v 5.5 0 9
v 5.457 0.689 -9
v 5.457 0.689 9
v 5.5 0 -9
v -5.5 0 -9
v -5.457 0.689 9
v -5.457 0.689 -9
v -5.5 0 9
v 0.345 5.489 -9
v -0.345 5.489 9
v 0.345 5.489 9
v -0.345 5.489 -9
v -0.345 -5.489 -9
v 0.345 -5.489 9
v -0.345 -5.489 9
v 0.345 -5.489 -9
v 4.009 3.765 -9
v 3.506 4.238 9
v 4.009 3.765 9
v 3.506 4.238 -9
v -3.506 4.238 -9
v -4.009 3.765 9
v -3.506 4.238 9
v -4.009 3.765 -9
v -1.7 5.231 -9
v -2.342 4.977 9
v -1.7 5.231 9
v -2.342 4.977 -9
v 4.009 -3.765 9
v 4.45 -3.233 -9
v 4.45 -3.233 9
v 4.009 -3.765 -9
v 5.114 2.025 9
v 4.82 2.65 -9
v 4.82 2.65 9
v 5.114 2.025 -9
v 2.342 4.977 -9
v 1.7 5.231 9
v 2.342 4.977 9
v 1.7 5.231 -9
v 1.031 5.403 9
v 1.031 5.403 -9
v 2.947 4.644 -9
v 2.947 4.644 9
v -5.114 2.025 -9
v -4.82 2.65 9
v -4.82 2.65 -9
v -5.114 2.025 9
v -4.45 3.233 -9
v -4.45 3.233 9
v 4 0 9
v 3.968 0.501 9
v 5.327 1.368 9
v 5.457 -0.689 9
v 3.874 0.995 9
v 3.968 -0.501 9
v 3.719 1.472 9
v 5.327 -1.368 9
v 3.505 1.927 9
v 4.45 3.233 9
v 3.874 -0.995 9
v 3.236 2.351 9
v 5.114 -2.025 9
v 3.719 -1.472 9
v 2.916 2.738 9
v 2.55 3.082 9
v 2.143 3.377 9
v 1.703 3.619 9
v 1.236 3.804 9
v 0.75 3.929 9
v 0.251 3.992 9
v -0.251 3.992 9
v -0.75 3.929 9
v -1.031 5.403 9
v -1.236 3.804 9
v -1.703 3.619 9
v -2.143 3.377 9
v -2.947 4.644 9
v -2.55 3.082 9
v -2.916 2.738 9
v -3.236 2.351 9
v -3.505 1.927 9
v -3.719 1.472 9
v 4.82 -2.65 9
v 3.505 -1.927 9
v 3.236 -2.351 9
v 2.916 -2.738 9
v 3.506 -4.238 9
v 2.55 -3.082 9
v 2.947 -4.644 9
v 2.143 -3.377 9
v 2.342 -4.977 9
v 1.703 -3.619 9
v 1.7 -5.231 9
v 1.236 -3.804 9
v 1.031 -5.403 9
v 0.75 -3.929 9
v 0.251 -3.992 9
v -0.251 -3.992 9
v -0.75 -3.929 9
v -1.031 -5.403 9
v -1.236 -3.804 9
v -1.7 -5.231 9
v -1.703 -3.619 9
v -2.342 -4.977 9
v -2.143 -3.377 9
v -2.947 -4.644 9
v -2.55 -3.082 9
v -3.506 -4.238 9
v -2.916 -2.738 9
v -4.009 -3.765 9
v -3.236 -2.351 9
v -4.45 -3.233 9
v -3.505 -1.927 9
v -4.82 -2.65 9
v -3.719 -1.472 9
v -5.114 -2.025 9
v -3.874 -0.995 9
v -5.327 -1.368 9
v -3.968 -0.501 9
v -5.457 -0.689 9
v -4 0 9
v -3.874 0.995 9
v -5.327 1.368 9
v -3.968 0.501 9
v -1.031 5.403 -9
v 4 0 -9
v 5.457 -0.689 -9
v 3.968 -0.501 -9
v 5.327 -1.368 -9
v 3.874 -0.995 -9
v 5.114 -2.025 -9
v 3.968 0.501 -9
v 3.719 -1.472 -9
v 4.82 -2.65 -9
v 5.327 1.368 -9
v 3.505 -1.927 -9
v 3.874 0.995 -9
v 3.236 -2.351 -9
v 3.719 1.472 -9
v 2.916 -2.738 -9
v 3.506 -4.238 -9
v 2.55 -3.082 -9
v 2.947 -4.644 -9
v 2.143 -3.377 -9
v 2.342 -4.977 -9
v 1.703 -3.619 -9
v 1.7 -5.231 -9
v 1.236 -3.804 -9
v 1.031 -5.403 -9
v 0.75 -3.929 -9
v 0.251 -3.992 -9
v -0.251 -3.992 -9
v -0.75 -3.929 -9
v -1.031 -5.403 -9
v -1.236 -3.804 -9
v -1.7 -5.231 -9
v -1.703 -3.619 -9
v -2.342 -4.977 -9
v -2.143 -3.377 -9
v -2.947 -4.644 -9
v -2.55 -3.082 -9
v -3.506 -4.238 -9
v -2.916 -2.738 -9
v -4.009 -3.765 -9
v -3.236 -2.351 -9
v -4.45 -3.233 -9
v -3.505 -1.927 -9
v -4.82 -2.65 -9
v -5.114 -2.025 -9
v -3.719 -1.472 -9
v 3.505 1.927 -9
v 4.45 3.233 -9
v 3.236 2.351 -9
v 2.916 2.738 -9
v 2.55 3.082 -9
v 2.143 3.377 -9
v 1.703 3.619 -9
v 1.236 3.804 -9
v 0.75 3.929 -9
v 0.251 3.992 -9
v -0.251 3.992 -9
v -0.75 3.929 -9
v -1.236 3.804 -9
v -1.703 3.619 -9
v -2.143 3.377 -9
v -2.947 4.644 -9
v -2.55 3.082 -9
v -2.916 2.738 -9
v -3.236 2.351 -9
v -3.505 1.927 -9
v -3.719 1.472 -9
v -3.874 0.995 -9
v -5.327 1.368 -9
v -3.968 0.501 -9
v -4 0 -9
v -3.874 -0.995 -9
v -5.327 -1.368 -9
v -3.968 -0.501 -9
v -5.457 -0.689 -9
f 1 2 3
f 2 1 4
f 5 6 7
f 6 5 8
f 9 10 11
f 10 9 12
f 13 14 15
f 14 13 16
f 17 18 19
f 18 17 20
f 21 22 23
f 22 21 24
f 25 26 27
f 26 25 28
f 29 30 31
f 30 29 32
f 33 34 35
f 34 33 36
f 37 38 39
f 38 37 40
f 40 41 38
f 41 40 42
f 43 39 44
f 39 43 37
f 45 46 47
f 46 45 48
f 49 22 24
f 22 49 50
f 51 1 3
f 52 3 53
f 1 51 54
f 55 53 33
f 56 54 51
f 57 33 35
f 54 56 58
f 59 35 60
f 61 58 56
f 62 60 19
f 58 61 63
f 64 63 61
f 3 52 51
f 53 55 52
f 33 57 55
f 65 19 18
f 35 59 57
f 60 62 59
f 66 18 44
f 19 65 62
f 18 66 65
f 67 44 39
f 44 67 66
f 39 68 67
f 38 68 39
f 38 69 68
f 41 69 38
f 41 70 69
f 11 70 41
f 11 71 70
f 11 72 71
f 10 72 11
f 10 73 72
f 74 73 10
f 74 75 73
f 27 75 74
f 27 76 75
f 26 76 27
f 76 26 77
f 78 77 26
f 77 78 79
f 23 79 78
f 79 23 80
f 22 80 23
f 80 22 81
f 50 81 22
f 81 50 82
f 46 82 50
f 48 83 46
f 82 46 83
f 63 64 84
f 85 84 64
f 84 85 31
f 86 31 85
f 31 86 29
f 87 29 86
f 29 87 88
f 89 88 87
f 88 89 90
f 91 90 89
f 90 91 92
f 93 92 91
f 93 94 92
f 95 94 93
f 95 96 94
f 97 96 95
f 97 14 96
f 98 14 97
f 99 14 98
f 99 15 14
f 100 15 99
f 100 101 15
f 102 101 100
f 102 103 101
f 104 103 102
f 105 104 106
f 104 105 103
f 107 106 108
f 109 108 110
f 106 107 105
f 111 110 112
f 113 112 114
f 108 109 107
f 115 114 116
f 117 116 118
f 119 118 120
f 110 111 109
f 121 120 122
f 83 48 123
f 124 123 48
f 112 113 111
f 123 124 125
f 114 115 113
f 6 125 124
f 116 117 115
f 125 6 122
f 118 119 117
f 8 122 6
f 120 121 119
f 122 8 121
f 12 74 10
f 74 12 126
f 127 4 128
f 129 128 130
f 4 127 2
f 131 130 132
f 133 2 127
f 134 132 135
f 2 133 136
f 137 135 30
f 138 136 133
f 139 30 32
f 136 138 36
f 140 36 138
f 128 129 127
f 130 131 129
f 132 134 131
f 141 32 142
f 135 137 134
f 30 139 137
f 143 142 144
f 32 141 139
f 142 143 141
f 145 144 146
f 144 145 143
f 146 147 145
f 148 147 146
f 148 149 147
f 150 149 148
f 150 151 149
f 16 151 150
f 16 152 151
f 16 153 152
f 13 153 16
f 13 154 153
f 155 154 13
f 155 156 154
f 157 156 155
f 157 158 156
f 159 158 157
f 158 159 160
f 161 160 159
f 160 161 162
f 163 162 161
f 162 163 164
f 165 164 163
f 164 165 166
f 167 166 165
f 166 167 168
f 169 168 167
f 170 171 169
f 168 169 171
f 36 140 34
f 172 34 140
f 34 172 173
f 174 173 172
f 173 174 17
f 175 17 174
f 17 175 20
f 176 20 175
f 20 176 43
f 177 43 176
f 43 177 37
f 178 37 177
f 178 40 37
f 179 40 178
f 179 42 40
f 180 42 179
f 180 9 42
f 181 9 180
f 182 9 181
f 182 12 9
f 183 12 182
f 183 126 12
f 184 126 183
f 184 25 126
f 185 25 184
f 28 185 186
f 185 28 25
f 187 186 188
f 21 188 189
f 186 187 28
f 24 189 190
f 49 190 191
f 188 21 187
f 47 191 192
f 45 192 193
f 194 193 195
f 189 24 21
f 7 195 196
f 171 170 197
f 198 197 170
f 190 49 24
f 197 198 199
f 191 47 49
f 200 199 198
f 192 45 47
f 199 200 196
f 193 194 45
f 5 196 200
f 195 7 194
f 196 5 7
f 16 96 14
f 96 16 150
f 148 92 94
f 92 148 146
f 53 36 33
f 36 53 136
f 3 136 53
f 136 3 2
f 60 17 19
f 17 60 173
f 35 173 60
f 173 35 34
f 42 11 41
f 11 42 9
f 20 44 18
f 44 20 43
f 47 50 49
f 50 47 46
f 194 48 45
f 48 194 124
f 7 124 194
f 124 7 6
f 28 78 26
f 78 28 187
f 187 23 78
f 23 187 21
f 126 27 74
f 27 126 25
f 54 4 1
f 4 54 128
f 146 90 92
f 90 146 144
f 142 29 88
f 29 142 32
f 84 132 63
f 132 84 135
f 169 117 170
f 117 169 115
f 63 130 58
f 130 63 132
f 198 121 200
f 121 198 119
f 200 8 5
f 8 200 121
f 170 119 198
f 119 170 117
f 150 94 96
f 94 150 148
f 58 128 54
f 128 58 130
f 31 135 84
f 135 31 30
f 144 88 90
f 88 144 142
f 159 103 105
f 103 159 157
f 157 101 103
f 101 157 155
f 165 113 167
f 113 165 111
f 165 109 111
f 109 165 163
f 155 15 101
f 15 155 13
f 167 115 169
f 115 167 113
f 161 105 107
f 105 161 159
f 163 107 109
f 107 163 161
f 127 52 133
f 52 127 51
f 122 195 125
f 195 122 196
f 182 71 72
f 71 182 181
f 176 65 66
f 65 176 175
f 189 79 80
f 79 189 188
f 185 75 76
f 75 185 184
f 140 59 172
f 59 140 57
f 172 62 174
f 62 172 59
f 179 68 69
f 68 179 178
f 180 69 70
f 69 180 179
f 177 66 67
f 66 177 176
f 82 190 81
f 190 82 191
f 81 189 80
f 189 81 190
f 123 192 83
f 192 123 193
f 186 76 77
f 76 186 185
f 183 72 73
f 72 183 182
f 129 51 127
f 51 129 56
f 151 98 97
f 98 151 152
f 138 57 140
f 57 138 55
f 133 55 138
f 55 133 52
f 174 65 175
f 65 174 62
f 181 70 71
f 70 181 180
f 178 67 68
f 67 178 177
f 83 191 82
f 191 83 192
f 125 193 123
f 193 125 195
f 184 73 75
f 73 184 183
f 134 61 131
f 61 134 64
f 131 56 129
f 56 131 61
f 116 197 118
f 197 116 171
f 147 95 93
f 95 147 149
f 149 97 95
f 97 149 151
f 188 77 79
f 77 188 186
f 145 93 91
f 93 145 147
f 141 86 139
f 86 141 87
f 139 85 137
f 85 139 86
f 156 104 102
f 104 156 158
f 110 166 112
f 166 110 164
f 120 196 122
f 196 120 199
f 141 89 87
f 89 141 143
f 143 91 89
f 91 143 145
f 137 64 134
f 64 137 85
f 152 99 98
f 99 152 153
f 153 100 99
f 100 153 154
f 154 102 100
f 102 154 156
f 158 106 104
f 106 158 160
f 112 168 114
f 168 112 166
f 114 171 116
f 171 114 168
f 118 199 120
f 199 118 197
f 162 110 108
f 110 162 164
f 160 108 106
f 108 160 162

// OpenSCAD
$fn = 50;


difference() {
	union() {
		translate(v = [0, 0, -9.0000000000]) {
			cylinder(h = 18, r = 5.5000000000);
		}
	}
	union() {
		translate(v = [0, 0, -100.0000000000]) {
			cylinder(h = 200, r = 4);
		}
	}
}
